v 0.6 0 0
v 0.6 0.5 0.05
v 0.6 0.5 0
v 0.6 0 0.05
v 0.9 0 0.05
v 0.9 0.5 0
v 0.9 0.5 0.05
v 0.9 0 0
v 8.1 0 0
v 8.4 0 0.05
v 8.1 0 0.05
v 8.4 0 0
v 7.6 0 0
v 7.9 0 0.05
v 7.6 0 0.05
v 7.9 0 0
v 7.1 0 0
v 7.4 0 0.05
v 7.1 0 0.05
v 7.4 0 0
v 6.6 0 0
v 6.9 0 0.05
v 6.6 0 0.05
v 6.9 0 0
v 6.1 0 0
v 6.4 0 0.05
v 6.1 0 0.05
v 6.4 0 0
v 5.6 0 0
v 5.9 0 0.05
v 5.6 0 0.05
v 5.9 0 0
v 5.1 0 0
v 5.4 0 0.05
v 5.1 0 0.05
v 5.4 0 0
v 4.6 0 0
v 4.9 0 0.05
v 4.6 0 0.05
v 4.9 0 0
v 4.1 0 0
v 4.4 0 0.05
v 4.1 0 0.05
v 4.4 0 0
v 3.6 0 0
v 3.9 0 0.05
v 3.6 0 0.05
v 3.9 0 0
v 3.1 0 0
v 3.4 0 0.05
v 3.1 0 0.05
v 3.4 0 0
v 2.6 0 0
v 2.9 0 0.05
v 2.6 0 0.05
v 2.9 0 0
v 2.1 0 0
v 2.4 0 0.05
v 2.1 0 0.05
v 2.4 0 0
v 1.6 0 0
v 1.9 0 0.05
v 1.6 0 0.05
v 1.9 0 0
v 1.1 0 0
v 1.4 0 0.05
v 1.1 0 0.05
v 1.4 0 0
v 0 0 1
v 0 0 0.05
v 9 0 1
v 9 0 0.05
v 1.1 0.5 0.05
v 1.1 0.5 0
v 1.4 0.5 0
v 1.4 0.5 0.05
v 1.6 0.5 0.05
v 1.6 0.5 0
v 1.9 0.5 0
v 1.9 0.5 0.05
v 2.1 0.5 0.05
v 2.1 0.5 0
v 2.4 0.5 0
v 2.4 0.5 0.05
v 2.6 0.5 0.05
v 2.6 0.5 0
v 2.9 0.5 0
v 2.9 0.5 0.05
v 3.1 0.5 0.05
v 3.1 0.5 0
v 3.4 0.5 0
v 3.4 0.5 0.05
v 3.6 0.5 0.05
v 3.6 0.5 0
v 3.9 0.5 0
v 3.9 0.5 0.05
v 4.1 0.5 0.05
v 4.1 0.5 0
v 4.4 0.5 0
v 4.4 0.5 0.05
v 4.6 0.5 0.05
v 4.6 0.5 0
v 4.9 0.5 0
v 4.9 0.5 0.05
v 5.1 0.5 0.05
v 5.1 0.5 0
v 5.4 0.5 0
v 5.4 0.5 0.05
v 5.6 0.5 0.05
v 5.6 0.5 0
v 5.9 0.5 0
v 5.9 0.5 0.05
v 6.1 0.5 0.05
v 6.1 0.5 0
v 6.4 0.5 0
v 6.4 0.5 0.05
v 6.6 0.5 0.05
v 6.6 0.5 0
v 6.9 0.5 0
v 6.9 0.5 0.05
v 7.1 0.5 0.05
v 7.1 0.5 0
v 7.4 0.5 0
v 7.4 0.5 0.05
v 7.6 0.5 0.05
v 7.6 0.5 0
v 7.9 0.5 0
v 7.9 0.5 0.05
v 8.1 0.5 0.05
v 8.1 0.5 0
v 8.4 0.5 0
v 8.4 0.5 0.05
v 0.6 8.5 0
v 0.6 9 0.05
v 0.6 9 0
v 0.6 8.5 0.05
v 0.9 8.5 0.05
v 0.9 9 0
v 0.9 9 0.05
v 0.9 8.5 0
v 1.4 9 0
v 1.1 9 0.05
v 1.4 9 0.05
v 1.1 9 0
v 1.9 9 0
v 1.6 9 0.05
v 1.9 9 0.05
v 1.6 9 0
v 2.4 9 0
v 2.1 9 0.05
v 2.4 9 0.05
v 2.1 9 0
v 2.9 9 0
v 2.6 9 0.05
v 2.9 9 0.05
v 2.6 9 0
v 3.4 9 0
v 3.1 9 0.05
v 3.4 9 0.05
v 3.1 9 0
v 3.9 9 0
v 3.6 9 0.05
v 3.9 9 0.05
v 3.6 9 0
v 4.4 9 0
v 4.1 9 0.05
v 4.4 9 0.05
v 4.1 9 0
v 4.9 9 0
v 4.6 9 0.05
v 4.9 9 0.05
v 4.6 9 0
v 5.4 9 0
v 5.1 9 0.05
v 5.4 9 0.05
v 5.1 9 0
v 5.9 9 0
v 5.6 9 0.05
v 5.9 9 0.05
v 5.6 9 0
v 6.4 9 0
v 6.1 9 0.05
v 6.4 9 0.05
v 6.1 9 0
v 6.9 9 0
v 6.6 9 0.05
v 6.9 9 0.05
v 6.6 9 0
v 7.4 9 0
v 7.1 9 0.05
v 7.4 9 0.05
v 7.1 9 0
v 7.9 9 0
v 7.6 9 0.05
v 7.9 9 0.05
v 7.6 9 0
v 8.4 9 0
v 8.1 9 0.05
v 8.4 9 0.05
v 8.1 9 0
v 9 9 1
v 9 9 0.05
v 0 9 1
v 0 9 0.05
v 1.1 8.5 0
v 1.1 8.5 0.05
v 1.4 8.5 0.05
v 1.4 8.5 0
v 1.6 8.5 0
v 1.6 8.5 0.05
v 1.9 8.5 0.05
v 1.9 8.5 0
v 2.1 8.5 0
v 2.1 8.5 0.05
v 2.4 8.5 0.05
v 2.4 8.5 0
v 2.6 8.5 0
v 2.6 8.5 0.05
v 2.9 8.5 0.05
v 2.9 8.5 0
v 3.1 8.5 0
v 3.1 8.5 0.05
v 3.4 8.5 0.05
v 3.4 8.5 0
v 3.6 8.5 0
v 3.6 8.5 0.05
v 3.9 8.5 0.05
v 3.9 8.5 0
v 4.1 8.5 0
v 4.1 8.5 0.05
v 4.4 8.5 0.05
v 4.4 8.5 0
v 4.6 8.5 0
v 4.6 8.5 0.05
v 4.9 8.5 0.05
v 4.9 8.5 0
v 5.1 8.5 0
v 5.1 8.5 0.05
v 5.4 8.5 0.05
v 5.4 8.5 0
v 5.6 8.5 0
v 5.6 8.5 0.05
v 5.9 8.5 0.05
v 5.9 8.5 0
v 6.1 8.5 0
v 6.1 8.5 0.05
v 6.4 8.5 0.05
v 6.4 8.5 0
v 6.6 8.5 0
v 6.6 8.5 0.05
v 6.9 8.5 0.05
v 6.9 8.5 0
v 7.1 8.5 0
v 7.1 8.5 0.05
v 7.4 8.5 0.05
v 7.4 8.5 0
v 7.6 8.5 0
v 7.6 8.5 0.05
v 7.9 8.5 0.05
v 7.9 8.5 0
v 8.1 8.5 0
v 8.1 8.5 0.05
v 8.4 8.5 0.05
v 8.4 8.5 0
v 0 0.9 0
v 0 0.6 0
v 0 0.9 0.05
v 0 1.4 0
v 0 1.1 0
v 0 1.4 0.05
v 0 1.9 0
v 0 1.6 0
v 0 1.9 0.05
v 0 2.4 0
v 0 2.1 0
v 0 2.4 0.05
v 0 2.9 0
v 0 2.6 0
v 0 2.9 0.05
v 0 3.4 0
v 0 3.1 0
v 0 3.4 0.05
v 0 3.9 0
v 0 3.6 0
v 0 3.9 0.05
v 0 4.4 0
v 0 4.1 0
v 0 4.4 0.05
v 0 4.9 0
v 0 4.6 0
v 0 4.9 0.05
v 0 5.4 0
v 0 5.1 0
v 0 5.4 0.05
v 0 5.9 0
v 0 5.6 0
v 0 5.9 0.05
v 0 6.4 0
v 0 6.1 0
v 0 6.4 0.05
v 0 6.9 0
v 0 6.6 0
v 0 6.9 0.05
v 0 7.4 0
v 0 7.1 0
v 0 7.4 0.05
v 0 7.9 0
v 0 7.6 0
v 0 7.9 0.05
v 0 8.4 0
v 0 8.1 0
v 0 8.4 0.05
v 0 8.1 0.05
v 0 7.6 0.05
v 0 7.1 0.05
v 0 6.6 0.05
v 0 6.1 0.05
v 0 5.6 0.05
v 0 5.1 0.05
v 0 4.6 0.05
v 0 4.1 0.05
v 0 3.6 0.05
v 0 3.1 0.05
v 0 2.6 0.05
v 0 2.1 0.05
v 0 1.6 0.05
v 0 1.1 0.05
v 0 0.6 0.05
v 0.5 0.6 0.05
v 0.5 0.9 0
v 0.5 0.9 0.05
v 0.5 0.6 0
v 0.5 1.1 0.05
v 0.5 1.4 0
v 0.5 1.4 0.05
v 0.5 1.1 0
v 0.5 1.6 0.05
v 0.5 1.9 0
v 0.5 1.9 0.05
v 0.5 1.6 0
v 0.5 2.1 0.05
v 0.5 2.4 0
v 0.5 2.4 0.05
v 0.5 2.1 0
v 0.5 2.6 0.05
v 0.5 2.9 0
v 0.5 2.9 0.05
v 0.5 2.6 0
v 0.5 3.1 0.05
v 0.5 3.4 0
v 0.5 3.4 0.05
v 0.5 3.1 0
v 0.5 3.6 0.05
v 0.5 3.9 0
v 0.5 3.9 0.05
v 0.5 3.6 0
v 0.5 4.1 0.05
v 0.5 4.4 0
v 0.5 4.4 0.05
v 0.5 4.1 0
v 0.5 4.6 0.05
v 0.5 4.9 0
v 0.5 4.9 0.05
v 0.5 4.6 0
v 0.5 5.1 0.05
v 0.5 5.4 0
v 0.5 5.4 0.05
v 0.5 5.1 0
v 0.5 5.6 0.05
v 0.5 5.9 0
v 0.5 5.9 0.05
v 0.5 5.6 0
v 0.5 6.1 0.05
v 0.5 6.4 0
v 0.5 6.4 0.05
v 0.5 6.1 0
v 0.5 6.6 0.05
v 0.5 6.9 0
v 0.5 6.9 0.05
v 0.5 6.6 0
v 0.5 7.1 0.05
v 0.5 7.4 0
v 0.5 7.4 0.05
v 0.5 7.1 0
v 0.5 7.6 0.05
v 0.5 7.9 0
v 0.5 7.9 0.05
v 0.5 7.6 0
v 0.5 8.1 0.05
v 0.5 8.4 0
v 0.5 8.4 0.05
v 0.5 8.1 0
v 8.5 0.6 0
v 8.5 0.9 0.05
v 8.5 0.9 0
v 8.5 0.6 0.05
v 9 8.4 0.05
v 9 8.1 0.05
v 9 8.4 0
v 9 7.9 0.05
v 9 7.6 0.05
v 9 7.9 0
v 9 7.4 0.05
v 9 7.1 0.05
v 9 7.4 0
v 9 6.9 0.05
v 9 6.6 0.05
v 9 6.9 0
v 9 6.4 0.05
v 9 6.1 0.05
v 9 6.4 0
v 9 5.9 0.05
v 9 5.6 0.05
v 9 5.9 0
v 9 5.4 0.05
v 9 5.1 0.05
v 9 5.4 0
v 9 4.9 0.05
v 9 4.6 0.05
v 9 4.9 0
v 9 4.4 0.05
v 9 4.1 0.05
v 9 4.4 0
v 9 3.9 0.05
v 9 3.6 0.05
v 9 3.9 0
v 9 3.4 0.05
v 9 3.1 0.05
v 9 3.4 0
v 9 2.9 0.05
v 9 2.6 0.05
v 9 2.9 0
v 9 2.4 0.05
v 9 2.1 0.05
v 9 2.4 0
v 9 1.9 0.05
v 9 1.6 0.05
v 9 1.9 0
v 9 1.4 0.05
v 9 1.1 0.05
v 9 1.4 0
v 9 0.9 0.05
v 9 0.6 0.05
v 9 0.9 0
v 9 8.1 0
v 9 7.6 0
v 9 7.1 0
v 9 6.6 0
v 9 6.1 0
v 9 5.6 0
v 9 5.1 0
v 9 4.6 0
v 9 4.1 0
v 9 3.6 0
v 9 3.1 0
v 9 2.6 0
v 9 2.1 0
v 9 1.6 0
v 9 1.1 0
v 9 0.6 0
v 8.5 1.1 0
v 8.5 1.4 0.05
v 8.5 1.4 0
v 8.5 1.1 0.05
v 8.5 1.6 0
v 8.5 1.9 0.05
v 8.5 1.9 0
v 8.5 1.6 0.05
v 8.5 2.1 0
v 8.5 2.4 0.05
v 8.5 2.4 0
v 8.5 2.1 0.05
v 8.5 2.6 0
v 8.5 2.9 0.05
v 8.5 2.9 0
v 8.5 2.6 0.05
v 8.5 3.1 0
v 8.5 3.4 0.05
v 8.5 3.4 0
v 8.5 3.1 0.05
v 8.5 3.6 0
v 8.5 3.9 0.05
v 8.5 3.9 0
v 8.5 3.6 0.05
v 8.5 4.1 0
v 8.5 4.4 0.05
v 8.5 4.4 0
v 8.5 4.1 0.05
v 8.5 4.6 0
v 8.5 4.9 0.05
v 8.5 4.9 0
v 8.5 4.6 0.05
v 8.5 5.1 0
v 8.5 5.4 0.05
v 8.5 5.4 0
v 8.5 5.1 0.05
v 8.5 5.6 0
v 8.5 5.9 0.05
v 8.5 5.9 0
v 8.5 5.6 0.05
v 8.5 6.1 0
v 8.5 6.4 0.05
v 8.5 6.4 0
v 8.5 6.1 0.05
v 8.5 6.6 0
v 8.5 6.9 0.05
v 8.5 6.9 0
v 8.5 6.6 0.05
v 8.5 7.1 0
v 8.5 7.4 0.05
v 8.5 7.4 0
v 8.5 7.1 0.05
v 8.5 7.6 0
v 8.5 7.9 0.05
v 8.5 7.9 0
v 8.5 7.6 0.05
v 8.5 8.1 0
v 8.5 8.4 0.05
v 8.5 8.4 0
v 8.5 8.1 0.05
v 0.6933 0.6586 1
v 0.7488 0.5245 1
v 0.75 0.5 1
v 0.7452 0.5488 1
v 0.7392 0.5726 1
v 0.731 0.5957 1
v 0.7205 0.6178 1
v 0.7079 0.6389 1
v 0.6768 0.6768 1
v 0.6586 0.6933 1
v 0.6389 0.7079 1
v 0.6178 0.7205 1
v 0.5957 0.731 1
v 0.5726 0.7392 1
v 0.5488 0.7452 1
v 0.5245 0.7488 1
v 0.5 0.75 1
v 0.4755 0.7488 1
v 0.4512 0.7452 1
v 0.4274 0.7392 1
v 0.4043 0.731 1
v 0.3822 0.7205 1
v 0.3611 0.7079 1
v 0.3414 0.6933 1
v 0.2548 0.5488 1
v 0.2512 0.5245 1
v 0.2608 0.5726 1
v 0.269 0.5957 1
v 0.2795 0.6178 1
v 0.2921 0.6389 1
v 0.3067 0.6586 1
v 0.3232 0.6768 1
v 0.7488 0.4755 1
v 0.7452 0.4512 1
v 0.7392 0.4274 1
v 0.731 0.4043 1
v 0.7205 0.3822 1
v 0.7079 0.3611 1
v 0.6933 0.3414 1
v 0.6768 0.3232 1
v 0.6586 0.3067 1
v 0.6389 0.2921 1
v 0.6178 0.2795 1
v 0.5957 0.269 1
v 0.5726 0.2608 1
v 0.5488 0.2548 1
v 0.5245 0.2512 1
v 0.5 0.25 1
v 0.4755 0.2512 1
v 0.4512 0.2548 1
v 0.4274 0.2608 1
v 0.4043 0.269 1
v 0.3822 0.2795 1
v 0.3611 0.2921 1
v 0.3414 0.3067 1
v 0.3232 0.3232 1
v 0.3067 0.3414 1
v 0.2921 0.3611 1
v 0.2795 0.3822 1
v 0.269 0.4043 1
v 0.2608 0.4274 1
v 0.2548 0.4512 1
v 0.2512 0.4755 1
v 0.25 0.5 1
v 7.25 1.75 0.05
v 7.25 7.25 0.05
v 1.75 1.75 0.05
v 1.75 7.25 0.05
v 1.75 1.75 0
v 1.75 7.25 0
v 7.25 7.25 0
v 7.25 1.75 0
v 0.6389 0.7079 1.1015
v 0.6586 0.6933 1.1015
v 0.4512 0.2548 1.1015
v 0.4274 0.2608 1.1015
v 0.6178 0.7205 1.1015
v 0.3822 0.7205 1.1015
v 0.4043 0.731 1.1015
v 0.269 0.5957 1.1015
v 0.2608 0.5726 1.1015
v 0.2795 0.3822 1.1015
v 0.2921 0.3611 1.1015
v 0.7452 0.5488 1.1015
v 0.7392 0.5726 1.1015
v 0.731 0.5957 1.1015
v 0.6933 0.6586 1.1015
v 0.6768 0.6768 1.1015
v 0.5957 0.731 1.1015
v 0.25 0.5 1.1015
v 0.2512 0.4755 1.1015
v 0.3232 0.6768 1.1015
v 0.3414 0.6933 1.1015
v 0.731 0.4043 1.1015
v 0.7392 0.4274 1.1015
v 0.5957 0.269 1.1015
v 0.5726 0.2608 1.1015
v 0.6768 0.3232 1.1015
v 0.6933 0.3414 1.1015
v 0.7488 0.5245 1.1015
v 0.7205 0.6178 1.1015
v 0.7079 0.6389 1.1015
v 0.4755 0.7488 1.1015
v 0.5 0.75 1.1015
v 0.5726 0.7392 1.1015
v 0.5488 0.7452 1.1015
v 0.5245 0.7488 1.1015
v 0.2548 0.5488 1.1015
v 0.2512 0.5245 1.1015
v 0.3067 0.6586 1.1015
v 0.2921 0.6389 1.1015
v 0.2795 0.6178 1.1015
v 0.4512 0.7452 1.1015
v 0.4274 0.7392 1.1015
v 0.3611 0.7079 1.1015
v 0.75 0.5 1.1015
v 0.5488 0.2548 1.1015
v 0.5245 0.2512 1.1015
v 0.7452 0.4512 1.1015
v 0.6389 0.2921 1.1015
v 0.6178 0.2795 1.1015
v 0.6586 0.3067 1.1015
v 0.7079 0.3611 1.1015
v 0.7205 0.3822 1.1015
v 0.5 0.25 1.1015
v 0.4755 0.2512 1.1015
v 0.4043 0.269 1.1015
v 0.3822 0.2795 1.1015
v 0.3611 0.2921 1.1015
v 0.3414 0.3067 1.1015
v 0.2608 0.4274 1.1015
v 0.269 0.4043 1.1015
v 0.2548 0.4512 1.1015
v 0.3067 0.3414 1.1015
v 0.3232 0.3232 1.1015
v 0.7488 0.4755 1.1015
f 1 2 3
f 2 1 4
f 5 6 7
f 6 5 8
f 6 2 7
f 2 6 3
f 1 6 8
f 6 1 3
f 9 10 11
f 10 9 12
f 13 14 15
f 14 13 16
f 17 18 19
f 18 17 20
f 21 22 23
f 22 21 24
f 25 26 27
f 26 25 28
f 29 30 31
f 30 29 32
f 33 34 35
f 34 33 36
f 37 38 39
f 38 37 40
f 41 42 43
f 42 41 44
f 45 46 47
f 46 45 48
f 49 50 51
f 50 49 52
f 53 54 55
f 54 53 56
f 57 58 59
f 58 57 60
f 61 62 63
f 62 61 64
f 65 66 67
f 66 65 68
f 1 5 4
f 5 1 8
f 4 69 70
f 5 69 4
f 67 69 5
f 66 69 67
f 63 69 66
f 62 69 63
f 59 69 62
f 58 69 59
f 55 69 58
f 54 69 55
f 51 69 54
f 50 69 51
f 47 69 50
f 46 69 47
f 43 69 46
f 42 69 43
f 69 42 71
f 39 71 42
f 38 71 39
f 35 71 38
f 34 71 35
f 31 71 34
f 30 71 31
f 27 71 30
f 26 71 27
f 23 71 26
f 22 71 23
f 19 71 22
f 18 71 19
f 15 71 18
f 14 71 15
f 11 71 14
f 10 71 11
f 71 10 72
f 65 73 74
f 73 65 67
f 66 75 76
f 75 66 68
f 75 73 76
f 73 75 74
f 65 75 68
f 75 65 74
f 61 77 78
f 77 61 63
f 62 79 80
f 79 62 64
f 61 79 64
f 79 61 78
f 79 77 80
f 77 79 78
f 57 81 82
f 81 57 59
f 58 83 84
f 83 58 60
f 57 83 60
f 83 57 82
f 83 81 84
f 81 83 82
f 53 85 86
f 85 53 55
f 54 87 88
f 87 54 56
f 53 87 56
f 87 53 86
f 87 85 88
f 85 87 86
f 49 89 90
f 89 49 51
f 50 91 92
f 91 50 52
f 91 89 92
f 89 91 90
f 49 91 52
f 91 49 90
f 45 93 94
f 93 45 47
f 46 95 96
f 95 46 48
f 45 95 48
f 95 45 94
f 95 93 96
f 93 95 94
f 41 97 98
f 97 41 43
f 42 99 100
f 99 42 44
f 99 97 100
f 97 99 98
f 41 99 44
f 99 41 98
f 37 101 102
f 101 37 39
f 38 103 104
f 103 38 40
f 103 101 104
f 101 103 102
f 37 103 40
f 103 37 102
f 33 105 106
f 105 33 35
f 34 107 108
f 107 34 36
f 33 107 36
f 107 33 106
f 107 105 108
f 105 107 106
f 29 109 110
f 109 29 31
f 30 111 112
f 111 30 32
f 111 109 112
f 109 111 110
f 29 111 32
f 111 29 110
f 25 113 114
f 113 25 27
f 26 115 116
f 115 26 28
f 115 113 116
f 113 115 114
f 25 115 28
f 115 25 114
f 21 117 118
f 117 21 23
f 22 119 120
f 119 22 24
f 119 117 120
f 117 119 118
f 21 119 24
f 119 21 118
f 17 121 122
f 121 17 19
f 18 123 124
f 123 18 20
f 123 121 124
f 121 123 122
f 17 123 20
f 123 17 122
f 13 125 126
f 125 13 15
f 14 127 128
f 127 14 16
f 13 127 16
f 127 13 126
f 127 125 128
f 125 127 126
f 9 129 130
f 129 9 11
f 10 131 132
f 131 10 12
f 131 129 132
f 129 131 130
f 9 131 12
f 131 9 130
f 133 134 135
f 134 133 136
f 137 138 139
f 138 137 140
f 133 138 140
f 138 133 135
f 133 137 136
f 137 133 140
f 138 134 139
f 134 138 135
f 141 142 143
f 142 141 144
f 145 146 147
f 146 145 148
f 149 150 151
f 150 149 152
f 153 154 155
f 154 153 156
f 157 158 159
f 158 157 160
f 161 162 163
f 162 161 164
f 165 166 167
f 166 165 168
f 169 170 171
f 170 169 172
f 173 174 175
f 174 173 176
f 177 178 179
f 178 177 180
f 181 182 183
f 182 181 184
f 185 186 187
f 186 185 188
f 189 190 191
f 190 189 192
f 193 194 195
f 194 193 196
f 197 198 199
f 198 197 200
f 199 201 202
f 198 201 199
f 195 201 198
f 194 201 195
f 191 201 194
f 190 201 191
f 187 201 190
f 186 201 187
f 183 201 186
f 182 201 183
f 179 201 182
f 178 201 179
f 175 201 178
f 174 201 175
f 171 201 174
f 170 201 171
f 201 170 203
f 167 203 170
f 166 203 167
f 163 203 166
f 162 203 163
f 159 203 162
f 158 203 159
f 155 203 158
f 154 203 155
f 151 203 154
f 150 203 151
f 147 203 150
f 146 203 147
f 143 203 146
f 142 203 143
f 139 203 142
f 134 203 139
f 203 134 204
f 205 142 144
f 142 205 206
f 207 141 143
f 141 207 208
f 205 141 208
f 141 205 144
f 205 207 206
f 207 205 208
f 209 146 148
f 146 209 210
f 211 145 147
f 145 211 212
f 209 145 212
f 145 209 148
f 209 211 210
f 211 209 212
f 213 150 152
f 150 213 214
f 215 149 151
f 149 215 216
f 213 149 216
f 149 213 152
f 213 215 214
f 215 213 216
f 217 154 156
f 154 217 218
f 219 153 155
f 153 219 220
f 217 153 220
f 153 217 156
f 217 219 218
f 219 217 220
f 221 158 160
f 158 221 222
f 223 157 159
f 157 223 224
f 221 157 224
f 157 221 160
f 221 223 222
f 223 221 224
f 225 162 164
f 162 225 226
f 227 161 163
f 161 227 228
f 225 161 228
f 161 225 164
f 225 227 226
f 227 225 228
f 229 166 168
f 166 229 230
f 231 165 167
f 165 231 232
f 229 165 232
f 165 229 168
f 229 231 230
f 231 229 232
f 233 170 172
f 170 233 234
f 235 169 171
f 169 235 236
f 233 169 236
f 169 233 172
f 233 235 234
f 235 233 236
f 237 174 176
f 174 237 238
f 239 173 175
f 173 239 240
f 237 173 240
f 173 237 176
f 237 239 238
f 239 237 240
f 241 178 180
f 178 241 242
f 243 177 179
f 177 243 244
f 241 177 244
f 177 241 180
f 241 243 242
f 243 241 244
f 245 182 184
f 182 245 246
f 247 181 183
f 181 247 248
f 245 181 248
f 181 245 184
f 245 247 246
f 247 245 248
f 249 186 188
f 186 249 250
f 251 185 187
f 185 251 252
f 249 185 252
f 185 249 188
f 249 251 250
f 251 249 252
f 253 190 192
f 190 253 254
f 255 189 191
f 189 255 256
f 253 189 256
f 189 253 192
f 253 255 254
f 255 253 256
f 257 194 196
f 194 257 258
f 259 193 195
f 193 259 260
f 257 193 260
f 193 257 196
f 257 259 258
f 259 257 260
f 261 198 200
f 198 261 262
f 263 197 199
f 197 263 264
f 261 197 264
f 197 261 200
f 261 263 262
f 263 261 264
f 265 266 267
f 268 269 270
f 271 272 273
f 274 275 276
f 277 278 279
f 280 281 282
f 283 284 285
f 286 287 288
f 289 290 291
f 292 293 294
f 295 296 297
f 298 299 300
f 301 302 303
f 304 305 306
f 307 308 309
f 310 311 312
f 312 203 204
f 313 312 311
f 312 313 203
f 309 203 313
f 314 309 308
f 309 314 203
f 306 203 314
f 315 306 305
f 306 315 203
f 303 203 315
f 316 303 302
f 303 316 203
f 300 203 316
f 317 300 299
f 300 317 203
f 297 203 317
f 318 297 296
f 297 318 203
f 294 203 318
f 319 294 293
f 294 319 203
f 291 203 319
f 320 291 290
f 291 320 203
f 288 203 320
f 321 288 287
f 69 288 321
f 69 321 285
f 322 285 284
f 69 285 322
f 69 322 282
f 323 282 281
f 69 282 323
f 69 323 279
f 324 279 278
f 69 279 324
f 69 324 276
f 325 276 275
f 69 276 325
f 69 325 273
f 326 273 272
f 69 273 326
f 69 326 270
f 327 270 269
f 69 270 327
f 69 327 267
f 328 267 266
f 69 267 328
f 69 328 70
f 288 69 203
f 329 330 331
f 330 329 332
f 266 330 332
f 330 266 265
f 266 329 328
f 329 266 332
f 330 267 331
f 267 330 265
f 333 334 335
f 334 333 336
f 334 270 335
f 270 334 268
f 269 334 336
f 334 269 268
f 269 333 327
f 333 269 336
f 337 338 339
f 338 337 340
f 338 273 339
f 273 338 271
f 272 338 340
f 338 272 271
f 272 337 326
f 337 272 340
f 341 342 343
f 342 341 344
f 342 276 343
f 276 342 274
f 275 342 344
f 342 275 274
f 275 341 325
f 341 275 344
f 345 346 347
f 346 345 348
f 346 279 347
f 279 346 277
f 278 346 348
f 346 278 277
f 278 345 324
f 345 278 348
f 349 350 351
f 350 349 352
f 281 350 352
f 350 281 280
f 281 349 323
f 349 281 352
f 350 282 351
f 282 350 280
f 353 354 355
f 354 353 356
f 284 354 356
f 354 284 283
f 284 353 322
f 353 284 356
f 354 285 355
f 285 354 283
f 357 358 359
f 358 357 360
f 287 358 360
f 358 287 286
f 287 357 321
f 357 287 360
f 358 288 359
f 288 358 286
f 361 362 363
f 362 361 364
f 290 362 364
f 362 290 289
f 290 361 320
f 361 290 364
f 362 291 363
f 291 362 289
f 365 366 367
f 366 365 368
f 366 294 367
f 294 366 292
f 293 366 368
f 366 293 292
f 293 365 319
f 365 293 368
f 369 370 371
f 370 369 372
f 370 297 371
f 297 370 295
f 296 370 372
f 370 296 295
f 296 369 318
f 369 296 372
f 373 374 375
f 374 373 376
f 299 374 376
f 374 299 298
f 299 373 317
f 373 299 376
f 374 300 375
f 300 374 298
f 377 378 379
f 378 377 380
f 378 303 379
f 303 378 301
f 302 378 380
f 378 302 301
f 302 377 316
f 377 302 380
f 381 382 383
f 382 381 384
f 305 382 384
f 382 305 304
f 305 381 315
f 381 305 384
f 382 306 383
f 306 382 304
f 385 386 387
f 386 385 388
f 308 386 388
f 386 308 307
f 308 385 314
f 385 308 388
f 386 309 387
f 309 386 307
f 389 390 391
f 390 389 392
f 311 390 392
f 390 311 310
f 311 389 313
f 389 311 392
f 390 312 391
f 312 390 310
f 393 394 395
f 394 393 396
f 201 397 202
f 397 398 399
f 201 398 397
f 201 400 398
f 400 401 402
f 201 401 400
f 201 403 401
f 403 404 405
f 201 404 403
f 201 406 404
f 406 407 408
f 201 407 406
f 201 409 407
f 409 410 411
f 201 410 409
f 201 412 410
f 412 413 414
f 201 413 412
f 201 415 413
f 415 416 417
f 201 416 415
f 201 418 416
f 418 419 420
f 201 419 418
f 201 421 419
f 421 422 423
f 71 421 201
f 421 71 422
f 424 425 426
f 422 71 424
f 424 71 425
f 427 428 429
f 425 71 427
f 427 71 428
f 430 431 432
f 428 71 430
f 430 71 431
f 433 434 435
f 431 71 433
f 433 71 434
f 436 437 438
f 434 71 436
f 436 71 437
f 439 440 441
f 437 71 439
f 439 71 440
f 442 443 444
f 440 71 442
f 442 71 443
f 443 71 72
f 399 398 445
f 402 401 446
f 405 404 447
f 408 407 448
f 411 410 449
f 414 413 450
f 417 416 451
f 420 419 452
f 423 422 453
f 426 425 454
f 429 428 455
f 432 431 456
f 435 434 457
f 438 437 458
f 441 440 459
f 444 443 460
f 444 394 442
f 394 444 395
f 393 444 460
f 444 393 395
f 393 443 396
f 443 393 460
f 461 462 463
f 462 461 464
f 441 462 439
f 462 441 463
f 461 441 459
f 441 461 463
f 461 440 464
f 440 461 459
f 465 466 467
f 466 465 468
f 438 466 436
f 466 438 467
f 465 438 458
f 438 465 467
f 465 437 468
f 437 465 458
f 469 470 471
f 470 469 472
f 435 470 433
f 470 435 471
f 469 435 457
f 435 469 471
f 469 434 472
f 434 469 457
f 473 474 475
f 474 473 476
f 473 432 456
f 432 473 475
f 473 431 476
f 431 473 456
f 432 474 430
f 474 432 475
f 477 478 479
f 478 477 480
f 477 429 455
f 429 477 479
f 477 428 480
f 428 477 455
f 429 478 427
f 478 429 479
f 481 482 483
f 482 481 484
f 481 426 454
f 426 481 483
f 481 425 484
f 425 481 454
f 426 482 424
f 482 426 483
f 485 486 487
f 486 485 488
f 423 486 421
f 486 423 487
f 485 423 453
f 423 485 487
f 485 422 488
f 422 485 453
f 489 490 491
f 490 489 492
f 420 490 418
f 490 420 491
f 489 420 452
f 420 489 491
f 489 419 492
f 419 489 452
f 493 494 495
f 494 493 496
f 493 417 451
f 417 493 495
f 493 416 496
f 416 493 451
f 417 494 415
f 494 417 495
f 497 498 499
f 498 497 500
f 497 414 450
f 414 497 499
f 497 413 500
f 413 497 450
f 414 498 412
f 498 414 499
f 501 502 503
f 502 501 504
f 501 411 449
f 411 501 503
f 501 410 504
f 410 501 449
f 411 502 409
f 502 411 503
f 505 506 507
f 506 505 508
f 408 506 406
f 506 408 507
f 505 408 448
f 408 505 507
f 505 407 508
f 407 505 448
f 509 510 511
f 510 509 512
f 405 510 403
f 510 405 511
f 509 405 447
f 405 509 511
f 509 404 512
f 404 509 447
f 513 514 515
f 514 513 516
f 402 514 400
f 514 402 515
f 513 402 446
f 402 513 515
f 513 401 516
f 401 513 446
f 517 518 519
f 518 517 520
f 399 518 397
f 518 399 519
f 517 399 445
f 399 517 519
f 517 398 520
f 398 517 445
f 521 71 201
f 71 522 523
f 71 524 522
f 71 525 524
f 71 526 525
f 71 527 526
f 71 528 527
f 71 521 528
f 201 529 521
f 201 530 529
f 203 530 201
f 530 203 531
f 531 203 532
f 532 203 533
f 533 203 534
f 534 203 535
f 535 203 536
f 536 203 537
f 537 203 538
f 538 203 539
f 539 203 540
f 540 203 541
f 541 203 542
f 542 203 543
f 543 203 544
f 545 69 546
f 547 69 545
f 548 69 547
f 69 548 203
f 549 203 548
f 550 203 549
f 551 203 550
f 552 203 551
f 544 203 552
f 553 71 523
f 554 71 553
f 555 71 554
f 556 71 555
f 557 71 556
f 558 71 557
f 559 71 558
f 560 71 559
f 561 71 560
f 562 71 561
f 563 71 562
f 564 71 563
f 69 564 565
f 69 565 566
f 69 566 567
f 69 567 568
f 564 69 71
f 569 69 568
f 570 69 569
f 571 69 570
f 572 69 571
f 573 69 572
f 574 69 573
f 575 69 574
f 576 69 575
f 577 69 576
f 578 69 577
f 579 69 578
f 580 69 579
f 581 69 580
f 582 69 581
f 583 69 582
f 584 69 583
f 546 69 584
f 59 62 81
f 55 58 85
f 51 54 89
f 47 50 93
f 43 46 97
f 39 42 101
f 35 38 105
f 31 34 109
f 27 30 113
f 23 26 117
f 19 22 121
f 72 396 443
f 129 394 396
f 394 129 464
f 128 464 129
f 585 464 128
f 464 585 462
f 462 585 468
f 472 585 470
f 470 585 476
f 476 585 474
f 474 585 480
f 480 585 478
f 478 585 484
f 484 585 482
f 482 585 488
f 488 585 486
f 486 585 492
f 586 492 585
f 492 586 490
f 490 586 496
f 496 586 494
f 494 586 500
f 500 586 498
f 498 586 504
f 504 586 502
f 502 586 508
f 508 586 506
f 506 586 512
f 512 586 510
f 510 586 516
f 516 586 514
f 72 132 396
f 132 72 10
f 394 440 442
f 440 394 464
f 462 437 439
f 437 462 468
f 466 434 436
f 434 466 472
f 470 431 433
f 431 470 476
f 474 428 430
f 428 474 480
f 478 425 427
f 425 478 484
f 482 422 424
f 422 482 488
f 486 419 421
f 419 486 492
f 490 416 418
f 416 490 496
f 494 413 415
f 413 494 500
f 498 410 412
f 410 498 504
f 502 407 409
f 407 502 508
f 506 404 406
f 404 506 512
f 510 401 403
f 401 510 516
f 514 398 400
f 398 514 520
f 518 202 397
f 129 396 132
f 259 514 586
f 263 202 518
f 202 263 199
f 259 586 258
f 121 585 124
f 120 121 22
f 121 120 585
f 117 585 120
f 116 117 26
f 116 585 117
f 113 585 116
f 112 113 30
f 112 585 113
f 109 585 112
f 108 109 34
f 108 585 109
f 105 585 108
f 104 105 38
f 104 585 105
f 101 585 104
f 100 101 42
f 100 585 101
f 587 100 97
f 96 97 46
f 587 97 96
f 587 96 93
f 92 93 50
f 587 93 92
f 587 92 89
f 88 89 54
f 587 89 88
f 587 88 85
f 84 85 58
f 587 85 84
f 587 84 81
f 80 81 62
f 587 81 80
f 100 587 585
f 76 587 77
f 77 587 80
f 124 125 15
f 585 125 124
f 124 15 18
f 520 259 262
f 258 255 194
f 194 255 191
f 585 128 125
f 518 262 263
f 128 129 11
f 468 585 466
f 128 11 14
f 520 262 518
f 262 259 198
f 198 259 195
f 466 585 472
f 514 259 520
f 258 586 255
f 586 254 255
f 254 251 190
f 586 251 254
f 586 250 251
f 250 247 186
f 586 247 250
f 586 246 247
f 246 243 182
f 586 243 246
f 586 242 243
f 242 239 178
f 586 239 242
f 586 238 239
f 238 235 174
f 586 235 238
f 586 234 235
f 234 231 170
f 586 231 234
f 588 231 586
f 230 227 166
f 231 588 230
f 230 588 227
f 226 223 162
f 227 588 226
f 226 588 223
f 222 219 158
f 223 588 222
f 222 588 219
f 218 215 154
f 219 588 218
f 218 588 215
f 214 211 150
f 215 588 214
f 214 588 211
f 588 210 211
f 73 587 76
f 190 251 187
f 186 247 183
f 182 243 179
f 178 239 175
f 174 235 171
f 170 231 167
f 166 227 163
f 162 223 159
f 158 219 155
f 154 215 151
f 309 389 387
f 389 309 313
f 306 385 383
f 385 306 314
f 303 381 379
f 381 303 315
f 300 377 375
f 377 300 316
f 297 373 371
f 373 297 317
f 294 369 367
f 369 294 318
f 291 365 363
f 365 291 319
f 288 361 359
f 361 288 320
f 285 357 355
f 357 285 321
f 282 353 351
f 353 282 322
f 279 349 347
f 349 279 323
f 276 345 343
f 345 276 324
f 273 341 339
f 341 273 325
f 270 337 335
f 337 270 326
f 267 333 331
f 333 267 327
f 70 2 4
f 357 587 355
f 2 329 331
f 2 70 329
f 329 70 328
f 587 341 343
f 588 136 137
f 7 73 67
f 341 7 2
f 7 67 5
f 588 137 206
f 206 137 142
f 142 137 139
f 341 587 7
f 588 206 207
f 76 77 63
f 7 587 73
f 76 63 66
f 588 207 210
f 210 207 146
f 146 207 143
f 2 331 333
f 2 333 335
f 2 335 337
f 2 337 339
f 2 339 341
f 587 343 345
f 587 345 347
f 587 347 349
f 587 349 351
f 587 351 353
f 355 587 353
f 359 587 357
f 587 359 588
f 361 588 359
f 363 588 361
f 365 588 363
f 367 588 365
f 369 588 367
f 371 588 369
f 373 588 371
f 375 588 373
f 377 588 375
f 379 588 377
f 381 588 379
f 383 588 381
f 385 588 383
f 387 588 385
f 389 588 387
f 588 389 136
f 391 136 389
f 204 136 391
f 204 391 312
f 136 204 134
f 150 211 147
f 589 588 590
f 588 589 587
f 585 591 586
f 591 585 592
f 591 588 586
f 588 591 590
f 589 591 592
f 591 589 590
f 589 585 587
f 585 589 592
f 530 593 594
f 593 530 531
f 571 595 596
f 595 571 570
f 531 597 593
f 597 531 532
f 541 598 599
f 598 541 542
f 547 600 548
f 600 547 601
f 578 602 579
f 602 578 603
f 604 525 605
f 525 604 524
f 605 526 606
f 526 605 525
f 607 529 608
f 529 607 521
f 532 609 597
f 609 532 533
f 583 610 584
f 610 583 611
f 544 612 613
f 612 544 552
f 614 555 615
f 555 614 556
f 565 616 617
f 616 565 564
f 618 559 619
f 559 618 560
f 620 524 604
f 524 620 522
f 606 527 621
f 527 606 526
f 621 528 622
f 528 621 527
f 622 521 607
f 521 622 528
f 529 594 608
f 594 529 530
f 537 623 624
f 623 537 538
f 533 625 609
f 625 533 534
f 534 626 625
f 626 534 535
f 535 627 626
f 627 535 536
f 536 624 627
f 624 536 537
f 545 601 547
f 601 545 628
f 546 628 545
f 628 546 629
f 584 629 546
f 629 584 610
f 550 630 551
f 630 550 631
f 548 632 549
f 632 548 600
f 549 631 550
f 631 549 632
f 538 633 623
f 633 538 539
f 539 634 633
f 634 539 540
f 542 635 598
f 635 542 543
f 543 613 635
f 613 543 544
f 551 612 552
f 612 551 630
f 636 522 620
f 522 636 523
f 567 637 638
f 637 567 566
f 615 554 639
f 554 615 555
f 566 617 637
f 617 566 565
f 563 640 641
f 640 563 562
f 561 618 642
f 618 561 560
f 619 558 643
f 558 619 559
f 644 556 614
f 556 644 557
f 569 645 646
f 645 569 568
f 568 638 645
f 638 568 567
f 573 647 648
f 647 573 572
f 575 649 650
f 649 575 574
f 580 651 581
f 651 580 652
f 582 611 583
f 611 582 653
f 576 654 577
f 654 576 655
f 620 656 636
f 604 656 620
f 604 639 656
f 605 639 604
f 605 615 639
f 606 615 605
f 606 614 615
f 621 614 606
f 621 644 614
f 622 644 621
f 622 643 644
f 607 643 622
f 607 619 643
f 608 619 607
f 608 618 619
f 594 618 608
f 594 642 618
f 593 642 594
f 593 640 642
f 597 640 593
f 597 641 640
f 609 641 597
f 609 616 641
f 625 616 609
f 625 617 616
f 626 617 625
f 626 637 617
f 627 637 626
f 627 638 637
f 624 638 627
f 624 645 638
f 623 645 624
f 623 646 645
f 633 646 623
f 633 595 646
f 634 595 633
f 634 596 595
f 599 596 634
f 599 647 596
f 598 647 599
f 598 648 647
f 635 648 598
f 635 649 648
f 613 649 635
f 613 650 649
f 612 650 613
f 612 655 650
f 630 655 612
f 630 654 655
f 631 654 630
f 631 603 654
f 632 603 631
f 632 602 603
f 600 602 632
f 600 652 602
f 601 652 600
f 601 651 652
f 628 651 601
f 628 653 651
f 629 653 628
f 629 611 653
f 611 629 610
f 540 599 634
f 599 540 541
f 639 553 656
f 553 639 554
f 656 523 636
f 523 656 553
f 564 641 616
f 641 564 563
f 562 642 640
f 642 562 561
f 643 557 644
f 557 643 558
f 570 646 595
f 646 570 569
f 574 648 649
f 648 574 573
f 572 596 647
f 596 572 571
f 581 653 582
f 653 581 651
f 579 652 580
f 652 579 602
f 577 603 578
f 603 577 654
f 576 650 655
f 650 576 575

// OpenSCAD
/*64-Lead Very Thin Plastic Quad Flat, No Lead Package (RTB) - 9.0x9.0 mm Body [VQFN]
With 5.5x5.5 mm Exposed Pad and Stepped Wettable Flanks;
generated by com.zoubworld.electronics.cad.model3d.QFN64
Date : Sun Jan 25 03:12:27 CET 2026
*/
K = 1.4 ;
A = 1.0 ;
E2 = 5.5 ;
D2 = 5.5 ;
b = 0.3 ;
N = 64.0 ;
L = 0.5 ;
A4 = 0.19 ;
D = 9.0 ;
A3 = 0.203 ;
A1 = 0.05 ;
D3 = 0.085 ;
E = 9.0 ;
e = 0.5 ;
$fn =64;

//body
color("black")
translate([0,0,A1])
cube([D,E,A-A1], center=false);

// pad
for (i = [-N/4/2 : 1 : N/4/2-1])
color("grey")
translate([D/2-b/2+e/2+e*i,0,0])
cube([b,L,A3], center=false);

for (i = [-N/4/2 : 1 : N/4/2-1])
color("grey")
translate([D/2-b/2+e/2+e*i,E-L,0])
cube([b,L,A3], center=false);


for (i = [-N/4/2 : 1 : N/4/2-1])
color("grey")
translate([0,E/2-b/2+e/2+e*i,0])
cube([L,b,A3], center=false);



for (i = [-N/4/2 : 1 : N/4/2-1])
color("grey")
translate([D-L,E/2-b/2+e/2+e*i,0])
cube([L,b,A3], center=false);

//expose pad
color("grey")
translate([D/2-D2/2,E/2-E2/2,0])
cube([D2,E2,A3], center=false);

color("white")
translate([0.5,0.5,A3])
cylinder(A-A3/2,r=0.25,center=false);
